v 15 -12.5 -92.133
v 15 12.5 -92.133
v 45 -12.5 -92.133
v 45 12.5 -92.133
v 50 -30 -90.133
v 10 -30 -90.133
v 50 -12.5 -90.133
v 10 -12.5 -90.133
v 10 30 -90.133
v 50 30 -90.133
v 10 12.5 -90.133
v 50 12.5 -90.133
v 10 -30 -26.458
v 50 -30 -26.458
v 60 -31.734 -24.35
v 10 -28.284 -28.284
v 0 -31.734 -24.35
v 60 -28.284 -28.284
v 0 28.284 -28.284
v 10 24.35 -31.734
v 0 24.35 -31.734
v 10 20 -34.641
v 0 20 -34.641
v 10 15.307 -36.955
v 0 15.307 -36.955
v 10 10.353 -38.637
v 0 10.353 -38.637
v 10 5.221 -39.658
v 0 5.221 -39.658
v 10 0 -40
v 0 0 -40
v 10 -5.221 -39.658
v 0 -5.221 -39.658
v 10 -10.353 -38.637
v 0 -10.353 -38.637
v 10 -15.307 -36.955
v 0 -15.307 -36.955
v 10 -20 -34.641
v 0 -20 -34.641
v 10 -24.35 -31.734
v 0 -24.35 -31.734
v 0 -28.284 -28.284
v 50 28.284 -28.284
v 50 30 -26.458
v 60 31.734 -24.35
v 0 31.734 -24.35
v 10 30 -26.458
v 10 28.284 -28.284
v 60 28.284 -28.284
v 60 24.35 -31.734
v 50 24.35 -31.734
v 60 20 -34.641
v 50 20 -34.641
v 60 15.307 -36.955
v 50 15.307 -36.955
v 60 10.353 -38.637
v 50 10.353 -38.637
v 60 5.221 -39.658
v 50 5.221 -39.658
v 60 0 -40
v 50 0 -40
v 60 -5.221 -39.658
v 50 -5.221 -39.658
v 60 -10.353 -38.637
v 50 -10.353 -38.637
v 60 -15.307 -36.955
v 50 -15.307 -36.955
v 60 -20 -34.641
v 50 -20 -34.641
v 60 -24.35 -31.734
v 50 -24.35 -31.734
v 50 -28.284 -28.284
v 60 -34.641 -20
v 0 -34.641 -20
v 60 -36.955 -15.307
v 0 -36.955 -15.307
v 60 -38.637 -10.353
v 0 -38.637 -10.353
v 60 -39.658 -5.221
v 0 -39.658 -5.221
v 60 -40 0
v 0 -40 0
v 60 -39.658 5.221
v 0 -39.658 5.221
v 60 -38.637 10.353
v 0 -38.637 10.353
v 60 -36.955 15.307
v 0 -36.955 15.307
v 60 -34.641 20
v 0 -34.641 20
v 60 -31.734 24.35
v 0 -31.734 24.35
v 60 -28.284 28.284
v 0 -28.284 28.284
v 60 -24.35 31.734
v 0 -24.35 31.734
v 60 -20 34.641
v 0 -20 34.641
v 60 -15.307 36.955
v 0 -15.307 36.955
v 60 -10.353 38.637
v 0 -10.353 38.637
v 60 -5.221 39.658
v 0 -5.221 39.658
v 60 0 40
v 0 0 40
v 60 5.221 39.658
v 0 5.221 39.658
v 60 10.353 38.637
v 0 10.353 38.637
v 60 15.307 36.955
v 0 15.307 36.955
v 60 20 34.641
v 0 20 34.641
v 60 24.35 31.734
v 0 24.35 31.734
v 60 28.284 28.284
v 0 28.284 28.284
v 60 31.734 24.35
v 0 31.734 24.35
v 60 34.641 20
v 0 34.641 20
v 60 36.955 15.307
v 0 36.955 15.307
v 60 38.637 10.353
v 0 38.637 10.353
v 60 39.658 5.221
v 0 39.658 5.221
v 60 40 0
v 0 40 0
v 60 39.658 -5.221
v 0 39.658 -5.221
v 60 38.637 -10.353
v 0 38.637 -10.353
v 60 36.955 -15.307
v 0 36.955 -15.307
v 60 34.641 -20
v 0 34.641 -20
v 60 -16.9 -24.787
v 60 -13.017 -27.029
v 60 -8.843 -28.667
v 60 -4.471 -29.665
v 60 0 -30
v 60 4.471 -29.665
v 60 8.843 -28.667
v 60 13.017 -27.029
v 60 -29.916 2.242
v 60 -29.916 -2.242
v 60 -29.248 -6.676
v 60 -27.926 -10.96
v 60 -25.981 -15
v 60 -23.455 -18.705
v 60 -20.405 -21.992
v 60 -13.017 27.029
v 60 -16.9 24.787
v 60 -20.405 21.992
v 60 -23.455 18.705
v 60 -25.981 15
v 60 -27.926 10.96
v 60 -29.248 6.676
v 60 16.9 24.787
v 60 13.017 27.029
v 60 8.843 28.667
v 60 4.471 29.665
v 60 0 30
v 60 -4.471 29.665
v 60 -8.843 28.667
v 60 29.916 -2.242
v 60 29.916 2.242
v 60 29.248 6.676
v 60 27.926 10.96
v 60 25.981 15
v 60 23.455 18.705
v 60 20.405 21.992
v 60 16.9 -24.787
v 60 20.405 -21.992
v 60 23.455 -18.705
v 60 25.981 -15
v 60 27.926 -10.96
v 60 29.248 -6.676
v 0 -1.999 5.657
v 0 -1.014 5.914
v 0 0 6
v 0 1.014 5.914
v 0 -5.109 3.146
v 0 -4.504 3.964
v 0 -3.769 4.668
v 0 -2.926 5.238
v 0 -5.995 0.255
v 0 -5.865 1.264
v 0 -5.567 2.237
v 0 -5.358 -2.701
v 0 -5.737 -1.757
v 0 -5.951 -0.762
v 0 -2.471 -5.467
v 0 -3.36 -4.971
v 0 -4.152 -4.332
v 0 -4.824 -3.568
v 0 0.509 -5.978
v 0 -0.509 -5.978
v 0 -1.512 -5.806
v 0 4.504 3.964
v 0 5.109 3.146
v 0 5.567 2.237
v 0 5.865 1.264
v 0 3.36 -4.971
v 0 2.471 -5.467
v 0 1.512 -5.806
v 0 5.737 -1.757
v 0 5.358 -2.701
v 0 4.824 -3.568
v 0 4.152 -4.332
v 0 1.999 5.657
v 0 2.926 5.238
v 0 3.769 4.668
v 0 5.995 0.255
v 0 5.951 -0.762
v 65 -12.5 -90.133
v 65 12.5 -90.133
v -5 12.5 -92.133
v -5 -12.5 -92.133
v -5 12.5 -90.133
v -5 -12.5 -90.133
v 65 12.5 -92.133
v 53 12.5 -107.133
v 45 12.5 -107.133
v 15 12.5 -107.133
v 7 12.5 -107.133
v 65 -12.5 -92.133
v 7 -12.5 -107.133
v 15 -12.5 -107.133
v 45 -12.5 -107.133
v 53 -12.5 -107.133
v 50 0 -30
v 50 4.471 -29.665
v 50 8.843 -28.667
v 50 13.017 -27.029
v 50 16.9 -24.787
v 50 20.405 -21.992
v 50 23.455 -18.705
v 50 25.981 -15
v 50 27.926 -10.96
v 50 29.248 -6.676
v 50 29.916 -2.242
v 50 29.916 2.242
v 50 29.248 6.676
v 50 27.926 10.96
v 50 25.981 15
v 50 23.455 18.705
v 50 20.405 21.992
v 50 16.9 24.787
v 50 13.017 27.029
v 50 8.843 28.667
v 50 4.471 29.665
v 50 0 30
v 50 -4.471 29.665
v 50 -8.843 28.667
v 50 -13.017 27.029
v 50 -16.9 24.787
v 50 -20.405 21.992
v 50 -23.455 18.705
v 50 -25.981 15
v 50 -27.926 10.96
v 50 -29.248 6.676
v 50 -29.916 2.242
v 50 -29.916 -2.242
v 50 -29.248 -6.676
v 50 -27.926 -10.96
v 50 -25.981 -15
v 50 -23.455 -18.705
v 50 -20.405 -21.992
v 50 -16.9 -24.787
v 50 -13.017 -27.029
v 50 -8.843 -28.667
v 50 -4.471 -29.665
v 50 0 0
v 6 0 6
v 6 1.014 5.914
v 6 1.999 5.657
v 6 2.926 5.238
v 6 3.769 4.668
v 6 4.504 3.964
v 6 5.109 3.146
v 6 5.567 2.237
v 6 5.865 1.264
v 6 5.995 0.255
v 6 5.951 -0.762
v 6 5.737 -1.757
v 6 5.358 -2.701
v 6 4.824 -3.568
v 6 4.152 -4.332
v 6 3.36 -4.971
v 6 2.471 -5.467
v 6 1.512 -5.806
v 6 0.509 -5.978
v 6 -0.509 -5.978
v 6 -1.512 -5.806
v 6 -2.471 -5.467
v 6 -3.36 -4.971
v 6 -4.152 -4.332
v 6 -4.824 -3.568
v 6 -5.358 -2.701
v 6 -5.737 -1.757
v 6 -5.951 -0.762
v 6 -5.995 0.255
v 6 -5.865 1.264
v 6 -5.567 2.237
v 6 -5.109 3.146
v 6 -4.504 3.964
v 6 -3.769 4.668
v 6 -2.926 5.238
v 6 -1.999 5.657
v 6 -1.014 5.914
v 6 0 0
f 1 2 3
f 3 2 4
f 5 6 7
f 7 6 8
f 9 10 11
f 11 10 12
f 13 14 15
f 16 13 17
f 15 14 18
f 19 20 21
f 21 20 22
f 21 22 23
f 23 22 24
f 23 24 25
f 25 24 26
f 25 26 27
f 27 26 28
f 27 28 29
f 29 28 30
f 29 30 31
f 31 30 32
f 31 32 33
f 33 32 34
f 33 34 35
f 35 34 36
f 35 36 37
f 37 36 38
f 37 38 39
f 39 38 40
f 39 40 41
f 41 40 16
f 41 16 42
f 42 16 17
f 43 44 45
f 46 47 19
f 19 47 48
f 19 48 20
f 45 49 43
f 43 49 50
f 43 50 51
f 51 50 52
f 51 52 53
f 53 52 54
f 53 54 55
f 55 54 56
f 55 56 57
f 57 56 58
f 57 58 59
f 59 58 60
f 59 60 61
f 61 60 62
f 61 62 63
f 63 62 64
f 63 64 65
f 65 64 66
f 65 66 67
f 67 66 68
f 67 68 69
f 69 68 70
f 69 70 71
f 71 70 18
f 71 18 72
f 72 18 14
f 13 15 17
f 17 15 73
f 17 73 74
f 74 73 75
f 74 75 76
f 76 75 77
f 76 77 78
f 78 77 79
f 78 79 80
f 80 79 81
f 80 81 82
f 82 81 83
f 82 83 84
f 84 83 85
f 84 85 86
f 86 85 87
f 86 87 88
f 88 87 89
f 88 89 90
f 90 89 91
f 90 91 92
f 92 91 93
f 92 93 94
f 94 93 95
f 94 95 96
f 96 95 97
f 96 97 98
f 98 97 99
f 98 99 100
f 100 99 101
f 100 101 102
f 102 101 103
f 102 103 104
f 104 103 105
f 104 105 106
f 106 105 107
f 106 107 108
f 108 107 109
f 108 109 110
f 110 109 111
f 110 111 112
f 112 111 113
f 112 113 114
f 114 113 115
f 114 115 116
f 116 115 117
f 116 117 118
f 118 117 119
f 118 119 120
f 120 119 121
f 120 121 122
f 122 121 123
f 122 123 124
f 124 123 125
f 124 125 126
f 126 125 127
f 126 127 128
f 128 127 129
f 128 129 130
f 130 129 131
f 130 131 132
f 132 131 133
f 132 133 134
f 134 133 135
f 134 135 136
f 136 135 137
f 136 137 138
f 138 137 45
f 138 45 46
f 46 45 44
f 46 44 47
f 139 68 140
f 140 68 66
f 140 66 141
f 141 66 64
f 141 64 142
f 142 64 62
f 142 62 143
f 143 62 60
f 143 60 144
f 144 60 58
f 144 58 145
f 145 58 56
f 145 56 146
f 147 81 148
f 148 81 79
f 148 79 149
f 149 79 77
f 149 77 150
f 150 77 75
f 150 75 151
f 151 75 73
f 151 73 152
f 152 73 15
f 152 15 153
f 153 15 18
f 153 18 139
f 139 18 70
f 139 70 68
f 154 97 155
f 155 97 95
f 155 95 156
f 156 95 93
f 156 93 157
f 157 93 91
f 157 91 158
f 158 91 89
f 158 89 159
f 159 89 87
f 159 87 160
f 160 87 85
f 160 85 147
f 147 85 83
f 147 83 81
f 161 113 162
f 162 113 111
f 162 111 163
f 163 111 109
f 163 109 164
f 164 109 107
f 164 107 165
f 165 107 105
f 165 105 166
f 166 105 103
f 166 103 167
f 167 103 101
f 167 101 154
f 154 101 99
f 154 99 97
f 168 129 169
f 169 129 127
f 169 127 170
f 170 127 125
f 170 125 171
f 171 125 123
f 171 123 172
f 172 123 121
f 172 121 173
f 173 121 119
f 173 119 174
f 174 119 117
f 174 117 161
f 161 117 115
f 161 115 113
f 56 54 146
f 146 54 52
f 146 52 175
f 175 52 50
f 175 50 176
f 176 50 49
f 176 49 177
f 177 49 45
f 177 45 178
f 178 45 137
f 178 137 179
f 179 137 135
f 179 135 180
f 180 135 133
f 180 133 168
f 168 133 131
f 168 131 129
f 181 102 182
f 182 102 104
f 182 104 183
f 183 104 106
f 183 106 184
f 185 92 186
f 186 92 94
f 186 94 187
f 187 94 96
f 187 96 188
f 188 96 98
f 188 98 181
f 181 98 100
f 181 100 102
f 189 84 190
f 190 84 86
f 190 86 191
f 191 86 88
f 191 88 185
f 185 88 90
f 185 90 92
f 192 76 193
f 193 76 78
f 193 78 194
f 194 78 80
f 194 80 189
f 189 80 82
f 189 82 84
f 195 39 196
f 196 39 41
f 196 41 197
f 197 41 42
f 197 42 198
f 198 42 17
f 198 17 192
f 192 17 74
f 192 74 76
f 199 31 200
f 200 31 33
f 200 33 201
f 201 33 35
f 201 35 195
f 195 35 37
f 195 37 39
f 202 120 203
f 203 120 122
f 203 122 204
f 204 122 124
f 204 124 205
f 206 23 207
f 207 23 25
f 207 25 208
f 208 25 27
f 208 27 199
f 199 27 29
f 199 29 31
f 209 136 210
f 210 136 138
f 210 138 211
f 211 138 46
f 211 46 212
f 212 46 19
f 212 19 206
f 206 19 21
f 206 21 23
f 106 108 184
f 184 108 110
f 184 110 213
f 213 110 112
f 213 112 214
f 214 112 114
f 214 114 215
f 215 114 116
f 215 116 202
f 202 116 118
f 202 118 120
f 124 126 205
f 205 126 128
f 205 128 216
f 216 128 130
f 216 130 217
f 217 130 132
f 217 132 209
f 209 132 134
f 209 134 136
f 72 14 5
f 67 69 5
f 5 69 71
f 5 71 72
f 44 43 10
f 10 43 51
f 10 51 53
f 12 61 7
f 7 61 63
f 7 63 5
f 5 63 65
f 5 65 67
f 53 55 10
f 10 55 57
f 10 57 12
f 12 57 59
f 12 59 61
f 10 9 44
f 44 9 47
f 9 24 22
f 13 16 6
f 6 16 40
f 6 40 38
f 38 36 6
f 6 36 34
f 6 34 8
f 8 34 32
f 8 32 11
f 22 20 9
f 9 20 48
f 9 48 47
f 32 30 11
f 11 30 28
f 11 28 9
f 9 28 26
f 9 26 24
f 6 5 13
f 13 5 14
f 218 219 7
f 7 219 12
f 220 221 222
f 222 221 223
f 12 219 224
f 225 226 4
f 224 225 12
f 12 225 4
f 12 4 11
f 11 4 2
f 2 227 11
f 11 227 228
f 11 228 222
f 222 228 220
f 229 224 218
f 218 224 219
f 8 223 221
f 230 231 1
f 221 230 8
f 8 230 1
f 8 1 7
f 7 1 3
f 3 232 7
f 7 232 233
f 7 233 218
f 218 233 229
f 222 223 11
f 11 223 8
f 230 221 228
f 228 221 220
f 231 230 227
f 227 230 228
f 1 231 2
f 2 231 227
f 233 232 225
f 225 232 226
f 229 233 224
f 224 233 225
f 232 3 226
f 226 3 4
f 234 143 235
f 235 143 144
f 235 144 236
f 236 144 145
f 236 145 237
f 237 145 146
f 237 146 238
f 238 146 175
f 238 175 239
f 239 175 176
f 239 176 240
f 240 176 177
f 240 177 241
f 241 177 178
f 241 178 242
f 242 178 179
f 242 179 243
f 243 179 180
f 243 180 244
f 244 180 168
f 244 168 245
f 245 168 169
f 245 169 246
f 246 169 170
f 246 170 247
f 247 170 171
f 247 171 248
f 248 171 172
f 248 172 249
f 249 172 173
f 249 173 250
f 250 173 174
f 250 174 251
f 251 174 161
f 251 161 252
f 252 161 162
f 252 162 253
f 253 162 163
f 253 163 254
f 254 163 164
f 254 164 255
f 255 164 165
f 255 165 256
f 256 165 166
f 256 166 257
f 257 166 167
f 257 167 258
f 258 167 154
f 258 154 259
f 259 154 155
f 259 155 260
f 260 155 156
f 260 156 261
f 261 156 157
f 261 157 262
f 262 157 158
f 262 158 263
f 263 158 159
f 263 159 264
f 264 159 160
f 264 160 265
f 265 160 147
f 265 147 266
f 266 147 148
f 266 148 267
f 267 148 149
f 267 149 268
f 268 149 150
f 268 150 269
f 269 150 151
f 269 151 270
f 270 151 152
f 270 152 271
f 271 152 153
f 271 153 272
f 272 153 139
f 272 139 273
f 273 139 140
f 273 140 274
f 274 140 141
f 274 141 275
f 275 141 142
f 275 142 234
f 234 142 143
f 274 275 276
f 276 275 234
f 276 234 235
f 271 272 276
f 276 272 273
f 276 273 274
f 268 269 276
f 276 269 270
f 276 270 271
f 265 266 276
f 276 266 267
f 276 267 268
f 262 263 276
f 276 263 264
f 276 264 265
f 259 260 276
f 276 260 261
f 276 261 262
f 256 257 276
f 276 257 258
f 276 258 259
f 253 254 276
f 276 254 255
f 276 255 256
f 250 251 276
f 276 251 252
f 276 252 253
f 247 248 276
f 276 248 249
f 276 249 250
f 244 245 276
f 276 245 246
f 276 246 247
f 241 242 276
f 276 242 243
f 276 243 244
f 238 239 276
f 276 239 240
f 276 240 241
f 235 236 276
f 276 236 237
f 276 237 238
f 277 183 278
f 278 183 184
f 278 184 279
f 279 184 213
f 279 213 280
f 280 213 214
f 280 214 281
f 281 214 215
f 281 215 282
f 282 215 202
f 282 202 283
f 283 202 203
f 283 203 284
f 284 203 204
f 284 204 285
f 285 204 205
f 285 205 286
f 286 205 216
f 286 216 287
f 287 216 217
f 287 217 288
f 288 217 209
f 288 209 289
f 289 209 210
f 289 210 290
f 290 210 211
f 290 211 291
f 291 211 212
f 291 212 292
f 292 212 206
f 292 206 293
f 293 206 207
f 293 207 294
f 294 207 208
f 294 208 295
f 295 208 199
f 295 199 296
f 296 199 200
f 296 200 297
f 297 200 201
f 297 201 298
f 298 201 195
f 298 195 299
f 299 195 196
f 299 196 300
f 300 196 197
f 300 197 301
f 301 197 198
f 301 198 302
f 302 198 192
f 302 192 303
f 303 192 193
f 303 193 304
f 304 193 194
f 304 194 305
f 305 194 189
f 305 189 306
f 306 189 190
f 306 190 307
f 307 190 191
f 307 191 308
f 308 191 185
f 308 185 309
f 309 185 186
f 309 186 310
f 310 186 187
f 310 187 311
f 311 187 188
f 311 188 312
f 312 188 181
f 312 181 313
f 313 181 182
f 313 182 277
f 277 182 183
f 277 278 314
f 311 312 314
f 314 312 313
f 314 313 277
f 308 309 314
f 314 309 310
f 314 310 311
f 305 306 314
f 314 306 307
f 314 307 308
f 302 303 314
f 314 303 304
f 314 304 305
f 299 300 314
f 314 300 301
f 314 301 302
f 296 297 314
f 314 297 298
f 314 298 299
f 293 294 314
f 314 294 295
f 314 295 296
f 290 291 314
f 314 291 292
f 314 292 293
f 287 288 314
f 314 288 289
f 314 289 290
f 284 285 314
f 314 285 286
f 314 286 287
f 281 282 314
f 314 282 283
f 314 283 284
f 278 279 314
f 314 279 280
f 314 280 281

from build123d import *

# Parameters (mm, degrees)
SKETCH1_R           = 40
BOSS_EXTRUDE1_DEPTH = 60
BOSS_EXTRUDE3_REACH = 132.133
SKETCH2_W           = 40
SKETCH2_H           = 60
SKETCH3_W           = 70
SKETCH3_H           = 25
BOSS_EXTRUDE4_DEPTH = 2
BOSS_EXTRUDE5_DEPTH = 25
SKETCH8_R           = 30
CUT_EXTRUDE3_DEPTH  = 10
SKETCH9_R           = 6
CUT_EXTRUDE4_DEPTH  = 6


with BuildPart() as part:
    # Sketch1 → Boss-Extrude1 (new body)
    with BuildSketch(Plane(origin=(0, 0, 0), x_dir=(0, 0, -1), z_dir=(1, 0, 0))):
        Circle(SKETCH1_R)
    extrude(amount=BOSS_EXTRUDE1_DEPTH)

    # Sketch2 → Boss-Extrude3 (add, up to next)
    with BuildSketch(Plane.XY.offset(-90.13280569), mode=Mode.PRIVATE) as boss_extrude3_sk1:
        with Locations((30, 0)):
            Rectangle(SKETCH2_W, SKETCH2_H)
    boss_extrude3_tool1 = extrude(boss_extrude3_sk1.sketch, amount=BOSS_EXTRUDE3_REACH, mode=Mode.PRIVATE) - part.part
    add(boss_extrude3_tool1.solids().sort_by_distance((30, 0, -90.132806))[0])

    # Sketch3 → Boss-Extrude4 (add)
    with BuildSketch(Plane(origin=(0, 0, -90.13280569), x_dir=(-1, 0, 0), z_dir=(0, 0, -1))):
        with Locations((-30, 0)):
            Rectangle(SKETCH3_W, SKETCH3_H)
    extrude(amount=BOSS_EXTRUDE4_DEPTH)

    # Sketch5 → Boss-Extrude5 (add)
    with BuildSketch(Plane(origin=(0, 12.5, 0), x_dir=(1, 0, 0), z_dir=(0, 1, 0))):
        Polygon((-5, 92.13280569), (7, 107.13280569), (15, 107.13280569), (15, 92.13280569), align=None)
        Polygon((45, 107.13280569), (45, 92.13280569), (65, 92.13280569), (53, 107.13280569), align=None)
    extrude(amount=-BOSS_EXTRUDE5_DEPTH)

    # Sketch8 → Cut-Extrude3 (cut)
    with BuildSketch(Plane(origin=(60, 0, 0), x_dir=(0, 0, -1), z_dir=(1, 0, 0))):
        Circle(SKETCH8_R)
    extrude(amount=-CUT_EXTRUDE3_DEPTH, mode=Mode.SUBTRACT)

    # Sketch9 → Cut-Extrude4 (cut)
    with BuildSketch(Plane.ZY):
        Circle(SKETCH9_R)
    extrude(amount=-CUT_EXTRUDE4_DEPTH, mode=Mode.SUBTRACT)


solid = part.part
